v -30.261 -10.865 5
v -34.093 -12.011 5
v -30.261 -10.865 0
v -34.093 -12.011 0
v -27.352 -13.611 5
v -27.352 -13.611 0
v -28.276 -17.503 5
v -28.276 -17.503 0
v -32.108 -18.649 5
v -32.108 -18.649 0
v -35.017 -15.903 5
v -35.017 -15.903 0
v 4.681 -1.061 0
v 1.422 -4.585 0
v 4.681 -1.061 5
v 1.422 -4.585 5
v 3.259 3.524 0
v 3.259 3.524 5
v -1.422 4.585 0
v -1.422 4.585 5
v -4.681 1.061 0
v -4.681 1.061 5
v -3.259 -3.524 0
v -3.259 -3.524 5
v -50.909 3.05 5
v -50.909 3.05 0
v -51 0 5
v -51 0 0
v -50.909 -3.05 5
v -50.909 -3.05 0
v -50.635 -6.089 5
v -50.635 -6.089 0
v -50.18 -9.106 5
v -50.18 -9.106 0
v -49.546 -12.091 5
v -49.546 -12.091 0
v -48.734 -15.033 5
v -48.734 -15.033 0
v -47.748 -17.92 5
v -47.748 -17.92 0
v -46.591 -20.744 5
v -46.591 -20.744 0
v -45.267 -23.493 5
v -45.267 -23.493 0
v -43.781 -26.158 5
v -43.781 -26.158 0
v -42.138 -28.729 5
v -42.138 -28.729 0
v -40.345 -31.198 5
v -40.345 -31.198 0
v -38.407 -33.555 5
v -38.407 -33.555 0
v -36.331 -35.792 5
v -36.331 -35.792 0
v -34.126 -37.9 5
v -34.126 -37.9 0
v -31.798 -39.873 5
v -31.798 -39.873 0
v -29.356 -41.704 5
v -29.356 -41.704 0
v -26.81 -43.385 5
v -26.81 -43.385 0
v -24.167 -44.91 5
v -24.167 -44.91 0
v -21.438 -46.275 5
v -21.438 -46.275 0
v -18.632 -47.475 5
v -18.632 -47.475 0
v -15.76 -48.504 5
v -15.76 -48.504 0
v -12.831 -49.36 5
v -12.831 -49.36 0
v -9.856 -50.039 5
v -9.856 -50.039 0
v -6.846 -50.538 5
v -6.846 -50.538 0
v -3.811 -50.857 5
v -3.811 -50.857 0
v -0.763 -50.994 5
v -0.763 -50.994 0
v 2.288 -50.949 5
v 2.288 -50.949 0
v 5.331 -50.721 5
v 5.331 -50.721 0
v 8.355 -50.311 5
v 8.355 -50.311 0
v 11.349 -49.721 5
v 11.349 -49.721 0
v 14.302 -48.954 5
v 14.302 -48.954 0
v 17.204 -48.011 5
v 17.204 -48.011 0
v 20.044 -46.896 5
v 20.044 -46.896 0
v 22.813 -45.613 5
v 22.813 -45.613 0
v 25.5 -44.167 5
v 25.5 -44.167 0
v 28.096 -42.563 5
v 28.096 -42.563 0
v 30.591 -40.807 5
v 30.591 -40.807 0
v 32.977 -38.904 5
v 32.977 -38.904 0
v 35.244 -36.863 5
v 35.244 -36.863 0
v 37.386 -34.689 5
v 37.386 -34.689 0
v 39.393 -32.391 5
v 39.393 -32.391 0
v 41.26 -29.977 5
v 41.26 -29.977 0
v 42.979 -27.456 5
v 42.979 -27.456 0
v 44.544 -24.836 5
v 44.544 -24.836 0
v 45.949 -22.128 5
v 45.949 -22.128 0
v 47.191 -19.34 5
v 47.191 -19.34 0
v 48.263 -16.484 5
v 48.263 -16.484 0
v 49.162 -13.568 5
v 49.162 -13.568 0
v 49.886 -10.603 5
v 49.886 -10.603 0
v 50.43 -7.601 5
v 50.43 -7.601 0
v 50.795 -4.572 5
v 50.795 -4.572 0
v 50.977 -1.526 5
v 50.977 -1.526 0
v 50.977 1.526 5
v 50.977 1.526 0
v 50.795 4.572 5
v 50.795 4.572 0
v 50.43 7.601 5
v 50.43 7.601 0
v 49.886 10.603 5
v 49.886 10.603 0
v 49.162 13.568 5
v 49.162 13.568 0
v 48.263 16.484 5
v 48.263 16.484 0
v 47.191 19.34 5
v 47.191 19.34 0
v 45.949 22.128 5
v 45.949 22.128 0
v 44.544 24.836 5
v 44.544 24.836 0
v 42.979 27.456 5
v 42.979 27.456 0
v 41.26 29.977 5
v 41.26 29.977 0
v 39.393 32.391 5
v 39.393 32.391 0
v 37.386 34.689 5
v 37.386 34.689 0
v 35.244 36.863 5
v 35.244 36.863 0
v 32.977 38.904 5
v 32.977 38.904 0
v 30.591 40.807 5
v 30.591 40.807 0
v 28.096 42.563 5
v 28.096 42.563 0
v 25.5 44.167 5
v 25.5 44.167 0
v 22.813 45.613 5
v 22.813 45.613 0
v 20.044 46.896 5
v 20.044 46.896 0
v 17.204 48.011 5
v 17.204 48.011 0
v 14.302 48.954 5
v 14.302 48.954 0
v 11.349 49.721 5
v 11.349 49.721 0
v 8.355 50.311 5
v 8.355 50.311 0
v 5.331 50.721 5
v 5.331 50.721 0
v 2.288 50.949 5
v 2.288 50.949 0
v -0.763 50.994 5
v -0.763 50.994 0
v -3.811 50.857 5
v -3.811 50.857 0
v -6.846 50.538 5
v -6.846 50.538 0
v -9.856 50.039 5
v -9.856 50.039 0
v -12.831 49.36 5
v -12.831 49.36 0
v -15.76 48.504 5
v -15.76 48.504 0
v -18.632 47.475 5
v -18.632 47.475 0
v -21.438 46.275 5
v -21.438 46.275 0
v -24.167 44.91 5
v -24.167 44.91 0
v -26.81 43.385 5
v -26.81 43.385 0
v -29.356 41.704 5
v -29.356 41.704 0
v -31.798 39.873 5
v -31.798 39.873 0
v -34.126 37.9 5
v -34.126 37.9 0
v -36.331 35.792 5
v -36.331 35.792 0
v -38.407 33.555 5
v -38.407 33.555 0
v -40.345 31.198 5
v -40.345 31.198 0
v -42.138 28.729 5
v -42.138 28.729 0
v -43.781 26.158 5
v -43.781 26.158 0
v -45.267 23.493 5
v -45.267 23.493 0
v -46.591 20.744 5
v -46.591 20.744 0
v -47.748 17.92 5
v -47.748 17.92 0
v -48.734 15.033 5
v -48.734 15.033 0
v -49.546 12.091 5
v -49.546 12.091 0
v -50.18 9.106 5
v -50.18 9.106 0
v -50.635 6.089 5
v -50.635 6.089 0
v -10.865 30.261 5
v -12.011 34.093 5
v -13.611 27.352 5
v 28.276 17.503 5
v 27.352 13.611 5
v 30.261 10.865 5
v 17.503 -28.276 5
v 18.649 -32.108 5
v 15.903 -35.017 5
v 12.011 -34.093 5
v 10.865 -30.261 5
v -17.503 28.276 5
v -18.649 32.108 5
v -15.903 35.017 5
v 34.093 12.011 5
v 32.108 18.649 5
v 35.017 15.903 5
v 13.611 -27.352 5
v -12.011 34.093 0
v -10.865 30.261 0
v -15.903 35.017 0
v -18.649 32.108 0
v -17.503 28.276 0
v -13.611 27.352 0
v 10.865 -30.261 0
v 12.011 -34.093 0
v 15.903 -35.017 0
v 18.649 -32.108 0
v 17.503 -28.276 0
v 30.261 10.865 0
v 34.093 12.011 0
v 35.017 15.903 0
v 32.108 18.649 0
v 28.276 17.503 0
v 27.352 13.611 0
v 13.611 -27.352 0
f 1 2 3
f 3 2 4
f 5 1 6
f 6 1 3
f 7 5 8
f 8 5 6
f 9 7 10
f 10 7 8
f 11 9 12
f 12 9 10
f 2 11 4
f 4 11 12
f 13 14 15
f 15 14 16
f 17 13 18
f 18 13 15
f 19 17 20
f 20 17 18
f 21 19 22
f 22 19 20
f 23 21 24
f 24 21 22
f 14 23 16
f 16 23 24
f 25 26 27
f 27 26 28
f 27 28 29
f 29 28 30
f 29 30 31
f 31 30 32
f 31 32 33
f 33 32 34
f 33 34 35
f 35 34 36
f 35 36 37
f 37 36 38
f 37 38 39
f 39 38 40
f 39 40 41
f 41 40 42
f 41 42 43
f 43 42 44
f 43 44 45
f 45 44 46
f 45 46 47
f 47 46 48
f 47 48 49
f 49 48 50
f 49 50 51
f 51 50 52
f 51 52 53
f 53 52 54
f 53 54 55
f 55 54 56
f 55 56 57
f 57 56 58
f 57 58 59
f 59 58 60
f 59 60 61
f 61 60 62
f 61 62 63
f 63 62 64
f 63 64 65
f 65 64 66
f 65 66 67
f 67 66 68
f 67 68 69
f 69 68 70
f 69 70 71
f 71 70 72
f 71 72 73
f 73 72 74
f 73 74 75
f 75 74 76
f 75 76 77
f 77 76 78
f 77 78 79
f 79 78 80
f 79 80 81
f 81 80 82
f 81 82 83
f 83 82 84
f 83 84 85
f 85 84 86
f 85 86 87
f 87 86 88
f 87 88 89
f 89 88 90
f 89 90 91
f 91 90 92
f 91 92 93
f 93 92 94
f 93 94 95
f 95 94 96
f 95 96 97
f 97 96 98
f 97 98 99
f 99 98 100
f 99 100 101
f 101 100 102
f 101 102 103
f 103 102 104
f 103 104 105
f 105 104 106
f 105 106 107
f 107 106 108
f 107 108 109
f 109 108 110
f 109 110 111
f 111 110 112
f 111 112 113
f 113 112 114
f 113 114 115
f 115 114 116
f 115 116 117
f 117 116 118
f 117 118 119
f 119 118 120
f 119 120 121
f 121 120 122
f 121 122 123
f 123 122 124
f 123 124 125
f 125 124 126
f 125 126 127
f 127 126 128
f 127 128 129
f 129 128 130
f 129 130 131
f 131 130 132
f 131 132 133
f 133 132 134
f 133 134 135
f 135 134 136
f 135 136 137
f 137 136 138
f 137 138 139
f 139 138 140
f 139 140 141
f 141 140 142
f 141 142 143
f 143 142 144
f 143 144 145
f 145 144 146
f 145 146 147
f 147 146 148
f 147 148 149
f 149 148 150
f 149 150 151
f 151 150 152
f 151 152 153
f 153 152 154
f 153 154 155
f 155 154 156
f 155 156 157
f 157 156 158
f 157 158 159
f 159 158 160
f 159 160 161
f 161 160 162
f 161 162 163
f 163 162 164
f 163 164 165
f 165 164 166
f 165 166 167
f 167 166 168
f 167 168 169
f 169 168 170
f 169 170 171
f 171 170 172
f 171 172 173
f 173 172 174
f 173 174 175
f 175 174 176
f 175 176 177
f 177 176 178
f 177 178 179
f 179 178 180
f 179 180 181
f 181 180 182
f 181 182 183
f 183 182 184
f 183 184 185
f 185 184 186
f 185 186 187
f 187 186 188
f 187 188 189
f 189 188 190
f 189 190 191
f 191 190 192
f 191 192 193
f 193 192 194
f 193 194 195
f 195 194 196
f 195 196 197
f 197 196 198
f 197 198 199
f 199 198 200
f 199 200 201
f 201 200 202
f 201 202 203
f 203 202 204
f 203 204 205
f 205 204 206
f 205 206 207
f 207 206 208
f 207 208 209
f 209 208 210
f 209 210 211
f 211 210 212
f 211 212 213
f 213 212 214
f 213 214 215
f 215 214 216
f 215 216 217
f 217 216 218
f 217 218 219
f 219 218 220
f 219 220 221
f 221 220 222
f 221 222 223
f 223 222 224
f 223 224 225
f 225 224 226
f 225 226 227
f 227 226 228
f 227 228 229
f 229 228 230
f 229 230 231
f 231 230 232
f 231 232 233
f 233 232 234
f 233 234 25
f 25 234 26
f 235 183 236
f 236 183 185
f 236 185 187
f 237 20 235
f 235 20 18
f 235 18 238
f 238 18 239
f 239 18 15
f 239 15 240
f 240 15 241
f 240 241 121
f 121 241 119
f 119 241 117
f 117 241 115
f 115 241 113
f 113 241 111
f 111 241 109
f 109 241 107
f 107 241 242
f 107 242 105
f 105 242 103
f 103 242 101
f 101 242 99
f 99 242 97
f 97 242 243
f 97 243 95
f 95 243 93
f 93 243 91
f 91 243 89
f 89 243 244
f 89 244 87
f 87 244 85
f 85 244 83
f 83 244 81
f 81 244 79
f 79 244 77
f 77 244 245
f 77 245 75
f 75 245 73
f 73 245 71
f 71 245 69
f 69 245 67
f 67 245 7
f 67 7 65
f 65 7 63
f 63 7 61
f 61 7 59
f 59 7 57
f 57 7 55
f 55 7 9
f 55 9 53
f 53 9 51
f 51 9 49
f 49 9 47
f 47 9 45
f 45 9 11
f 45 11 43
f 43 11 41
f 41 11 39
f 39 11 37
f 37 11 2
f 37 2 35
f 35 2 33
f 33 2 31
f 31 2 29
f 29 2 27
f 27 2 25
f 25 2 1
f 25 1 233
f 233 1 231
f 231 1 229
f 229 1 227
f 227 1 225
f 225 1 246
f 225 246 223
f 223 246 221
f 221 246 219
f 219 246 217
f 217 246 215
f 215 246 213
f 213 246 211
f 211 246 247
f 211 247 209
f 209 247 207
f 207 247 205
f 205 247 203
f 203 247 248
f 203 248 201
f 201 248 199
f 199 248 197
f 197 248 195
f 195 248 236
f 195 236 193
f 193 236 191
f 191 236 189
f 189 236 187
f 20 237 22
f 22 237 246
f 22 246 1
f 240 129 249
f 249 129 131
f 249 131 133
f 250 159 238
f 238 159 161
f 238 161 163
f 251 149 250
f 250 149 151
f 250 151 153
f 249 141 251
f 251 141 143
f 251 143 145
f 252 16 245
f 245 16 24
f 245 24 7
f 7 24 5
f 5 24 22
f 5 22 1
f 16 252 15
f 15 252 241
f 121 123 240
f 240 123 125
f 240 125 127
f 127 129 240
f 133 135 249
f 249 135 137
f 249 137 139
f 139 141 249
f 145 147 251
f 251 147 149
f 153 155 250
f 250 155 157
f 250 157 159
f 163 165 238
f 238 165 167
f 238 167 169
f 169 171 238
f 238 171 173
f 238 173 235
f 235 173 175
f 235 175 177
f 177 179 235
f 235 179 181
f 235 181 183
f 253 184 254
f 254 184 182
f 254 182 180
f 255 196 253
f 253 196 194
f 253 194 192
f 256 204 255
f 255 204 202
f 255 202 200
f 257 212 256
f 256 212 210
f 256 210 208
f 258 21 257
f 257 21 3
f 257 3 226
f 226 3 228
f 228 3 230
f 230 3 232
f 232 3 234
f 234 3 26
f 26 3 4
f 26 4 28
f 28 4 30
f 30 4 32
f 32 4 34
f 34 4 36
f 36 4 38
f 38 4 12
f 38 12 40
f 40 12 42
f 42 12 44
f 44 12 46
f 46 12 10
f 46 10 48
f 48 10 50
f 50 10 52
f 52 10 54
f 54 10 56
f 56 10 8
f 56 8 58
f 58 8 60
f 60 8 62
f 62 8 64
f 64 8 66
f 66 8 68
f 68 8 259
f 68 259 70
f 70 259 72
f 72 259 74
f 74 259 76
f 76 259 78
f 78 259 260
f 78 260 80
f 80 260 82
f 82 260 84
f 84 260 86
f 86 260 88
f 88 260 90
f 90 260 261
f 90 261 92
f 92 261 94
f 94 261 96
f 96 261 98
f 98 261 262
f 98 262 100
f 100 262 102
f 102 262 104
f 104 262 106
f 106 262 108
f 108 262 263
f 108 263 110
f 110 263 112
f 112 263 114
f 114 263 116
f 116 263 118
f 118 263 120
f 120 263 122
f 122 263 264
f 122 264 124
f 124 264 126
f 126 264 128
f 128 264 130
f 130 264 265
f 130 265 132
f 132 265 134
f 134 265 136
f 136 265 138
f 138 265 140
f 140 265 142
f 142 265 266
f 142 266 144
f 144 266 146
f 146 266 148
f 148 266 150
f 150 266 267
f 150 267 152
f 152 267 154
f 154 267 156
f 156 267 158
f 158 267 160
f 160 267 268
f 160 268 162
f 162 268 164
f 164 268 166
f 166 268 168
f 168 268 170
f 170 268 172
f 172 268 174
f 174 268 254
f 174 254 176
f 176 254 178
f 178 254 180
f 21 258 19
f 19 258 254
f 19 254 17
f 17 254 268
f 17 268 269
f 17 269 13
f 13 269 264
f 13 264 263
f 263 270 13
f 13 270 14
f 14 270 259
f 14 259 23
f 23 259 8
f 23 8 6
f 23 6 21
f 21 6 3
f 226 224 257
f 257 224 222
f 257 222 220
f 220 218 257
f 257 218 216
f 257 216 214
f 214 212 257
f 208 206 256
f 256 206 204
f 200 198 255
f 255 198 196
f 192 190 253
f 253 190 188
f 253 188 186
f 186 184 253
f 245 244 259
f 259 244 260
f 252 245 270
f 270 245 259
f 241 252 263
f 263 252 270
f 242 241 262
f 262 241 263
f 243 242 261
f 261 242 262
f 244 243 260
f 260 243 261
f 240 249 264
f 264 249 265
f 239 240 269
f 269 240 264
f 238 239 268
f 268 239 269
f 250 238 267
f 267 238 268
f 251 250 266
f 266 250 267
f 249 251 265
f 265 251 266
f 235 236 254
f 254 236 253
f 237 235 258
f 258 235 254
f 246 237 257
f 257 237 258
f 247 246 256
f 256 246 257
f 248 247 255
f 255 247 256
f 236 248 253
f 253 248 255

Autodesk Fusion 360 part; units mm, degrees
sketch "mainbase" plane through (0, 0, 0) normal (0, 0, 1) x (1, 0, 0)
  circle A0 centre (0, 0) radius 51
  circle A1 centre (0, 0) radius 46.5
  line L0 (-42.0315, -19.8897) -> (5.9278, -46.1206)
  line L1 (5.9278, -46.1206) -> (45.6951, -8.6144)
  line L2 (45.6951, -8.6144) -> (22.3133, 40.7966)
  line L3 (22.3133, 40.7966) -> (-31.9047, 33.8281)
  line L4 (-31.9047, 33.8281) -> (-42.0315, -19.8897)
  line L5 (-31.9047, 33.8281) -> (0, 0)
  line L6 (0, 0) -> (-42.0315, -19.8897)
  line L7 (5.9278, -46.1206) -> (0, 0)
  line L8 (45.6951, -8.6144) -> (0, 0)
  line L9 (22.3133, 40.7966) -> (0, 0)
  line L10 (-20.0354, 17.8663) -> (-16.8802, 20.3249)
  line L11 (-16.8802, 20.3249) -> (-17.4318, 24.2866)
  line L12 (-17.4318, 24.2866) -> (-21.1386, 25.7899)
  line L13 (-21.1386, 25.7899) -> (-24.2938, 23.3313)
  line L14 (-24.2938, 23.3313) -> (-23.7422, 19.3695)
  line L15 (-23.7422, 19.3695) -> (-20.0354, 17.8663)
  line L16 (19.2822, 26.9195) -> (19.1418, 30.9171)
  line L17 (19.1418, 30.9171) -> (15.6096, 32.7942)
  line L18 (15.6096, 32.7942) -> (12.2178, 30.6738)
  line L19 (12.2178, 30.6738) -> (12.3583, 26.6762)
  line L20 (12.3583, 26.6762) -> (15.8905, 24.7991)
  line L21 (15.8905, 24.7991) -> (19.2822, 26.9195)
  line L22 (30.8937, -9.0267) -> (34.6805, -10.315)
  line L23 (34.6805, -10.315) -> (37.6897, -7.6796)
  line L24 (37.6897, -7.6796) -> (36.912, -3.756)
  line L25 (36.912, -3.756) -> (33.1251, -2.4676)
  line L26 (33.1251, -2.4676) -> (30.116, -5.103)
  line L27 (30.116, -5.103) -> (30.8937, -9.0267)
  line L28 (8.3833, -33.8748) -> (6.093, -30.5954)
  line L29 (6.093, -30.5954) -> (2.1078, -30.9391)
  line L30 (2.1078, -30.9391) -> (0.4128, -34.5622)
  line L31 (0.4128, -34.5622) -> (2.7031, -37.8417)
  line L32 (2.7031, -37.8417) -> (6.6883, -37.498)
  line L33 (6.6883, -37.498) -> (8.3833, -33.8748)
  line L34 (-27.3524, -13.6107) -> (-30.2612, -10.865)
  line L35 (-30.2612, -10.865) -> (-34.0934, -12.0112)
  line L36 (-34.0934, -12.0112) -> (-35.0169, -15.9031)
  line L37 (-35.0169, -15.9031) -> (-32.1082, -18.6488)
  line L38 (-32.1082, -18.6488) -> (-28.2759, -17.5026)
  line L39 (-28.2759, -17.5026) -> (-27.3524, -13.6107)
  line L40 (1.4219, -4.5846) -> (4.6813, -1.0609)
  line L41 (4.6813, -1.0609) -> (3.2594, 3.5237)
  line L42 (3.2594, 3.5237) -> (-1.4219, 4.5846)
  line L43 (-1.4219, 4.5846) -> (-4.6813, 1.0609)
  line L44 (-4.6813, 1.0609) -> (-3.2594, -3.5237)
  line L45 (-3.2594, -3.5237) -> (1.4219, -4.5846)
  point P0 (-20.587, 21.8281)
  point P1 (15.75, 28.7966)
  point P2 (33.9028, -6.3913)
  point P3 (4.3981, -34.2185)
  point P4 (-31.1847, -14.7569)
  dimension "d1" = 102
  dimension "d2" = 93
  dimension "d3" = 46.5
  dimension "d4" = 4
  dimension "d5" = 12
  dimension "d6" = 4
  dimension "d7" = 12
  dimension "d8" = 4
  dimension "d9" = 12
  dimension "d10" = 4
  dimension "d11" = 12
  dimension "d12" = 4
  dimension "d13" = 12
  dimension "d14" = 4.8
extrude "Extrude1" add sketch "mainbase" along normal blind 5 contours A0 | A1 L2 | A1 L3 | L3 L5 L9 L10 L11 L12 L13 L17 L18 L19 L20 L42 L43 | L2 L8 L9 L16 L17 L20 L21 L24 L25 L26 L27 L41 L42 | A1 L1 | L1 L7 L8 L22 L23 L24 L27 L28 L29 L32 L33 L40 L41 L45 | A1 L4 | L4 L5 L6 L10 L13 L14 L15 L34 L35 L36 L37 L43 L44 | L9 L16 L17 L20 L21 | L9 L17 L18 L19 L20 | A1 L0 | L0 L6 L7 L29 L30 L31 L32 L34 L37 L38 L39 L44 L45 | L8 L22 L23 L24 L27 | L8 L24 L25 L26 L27 | L5 L10 L11 L12 L13 | L5 L10 L13 L14 L15 | L7 L29 L30 L31 L32 | L7 L28 L29 L32 L33 | L6 L34 L35 L36 L37 | L6 L34 L37 L38 L39
extrude "Extrude2" cut sketch "mainbase" along normal blind 25 contours L6 L34 L35 L36 L37 | L6 L34 L37 L38 L39
pattern_circular "C-Pattern1" count 4 over 360 about axis through (0, 0, 1.75) along (0, 0, 1) of "Extrude2"
equation "d3 = ( 93 / 2 ) * 1 mm"
